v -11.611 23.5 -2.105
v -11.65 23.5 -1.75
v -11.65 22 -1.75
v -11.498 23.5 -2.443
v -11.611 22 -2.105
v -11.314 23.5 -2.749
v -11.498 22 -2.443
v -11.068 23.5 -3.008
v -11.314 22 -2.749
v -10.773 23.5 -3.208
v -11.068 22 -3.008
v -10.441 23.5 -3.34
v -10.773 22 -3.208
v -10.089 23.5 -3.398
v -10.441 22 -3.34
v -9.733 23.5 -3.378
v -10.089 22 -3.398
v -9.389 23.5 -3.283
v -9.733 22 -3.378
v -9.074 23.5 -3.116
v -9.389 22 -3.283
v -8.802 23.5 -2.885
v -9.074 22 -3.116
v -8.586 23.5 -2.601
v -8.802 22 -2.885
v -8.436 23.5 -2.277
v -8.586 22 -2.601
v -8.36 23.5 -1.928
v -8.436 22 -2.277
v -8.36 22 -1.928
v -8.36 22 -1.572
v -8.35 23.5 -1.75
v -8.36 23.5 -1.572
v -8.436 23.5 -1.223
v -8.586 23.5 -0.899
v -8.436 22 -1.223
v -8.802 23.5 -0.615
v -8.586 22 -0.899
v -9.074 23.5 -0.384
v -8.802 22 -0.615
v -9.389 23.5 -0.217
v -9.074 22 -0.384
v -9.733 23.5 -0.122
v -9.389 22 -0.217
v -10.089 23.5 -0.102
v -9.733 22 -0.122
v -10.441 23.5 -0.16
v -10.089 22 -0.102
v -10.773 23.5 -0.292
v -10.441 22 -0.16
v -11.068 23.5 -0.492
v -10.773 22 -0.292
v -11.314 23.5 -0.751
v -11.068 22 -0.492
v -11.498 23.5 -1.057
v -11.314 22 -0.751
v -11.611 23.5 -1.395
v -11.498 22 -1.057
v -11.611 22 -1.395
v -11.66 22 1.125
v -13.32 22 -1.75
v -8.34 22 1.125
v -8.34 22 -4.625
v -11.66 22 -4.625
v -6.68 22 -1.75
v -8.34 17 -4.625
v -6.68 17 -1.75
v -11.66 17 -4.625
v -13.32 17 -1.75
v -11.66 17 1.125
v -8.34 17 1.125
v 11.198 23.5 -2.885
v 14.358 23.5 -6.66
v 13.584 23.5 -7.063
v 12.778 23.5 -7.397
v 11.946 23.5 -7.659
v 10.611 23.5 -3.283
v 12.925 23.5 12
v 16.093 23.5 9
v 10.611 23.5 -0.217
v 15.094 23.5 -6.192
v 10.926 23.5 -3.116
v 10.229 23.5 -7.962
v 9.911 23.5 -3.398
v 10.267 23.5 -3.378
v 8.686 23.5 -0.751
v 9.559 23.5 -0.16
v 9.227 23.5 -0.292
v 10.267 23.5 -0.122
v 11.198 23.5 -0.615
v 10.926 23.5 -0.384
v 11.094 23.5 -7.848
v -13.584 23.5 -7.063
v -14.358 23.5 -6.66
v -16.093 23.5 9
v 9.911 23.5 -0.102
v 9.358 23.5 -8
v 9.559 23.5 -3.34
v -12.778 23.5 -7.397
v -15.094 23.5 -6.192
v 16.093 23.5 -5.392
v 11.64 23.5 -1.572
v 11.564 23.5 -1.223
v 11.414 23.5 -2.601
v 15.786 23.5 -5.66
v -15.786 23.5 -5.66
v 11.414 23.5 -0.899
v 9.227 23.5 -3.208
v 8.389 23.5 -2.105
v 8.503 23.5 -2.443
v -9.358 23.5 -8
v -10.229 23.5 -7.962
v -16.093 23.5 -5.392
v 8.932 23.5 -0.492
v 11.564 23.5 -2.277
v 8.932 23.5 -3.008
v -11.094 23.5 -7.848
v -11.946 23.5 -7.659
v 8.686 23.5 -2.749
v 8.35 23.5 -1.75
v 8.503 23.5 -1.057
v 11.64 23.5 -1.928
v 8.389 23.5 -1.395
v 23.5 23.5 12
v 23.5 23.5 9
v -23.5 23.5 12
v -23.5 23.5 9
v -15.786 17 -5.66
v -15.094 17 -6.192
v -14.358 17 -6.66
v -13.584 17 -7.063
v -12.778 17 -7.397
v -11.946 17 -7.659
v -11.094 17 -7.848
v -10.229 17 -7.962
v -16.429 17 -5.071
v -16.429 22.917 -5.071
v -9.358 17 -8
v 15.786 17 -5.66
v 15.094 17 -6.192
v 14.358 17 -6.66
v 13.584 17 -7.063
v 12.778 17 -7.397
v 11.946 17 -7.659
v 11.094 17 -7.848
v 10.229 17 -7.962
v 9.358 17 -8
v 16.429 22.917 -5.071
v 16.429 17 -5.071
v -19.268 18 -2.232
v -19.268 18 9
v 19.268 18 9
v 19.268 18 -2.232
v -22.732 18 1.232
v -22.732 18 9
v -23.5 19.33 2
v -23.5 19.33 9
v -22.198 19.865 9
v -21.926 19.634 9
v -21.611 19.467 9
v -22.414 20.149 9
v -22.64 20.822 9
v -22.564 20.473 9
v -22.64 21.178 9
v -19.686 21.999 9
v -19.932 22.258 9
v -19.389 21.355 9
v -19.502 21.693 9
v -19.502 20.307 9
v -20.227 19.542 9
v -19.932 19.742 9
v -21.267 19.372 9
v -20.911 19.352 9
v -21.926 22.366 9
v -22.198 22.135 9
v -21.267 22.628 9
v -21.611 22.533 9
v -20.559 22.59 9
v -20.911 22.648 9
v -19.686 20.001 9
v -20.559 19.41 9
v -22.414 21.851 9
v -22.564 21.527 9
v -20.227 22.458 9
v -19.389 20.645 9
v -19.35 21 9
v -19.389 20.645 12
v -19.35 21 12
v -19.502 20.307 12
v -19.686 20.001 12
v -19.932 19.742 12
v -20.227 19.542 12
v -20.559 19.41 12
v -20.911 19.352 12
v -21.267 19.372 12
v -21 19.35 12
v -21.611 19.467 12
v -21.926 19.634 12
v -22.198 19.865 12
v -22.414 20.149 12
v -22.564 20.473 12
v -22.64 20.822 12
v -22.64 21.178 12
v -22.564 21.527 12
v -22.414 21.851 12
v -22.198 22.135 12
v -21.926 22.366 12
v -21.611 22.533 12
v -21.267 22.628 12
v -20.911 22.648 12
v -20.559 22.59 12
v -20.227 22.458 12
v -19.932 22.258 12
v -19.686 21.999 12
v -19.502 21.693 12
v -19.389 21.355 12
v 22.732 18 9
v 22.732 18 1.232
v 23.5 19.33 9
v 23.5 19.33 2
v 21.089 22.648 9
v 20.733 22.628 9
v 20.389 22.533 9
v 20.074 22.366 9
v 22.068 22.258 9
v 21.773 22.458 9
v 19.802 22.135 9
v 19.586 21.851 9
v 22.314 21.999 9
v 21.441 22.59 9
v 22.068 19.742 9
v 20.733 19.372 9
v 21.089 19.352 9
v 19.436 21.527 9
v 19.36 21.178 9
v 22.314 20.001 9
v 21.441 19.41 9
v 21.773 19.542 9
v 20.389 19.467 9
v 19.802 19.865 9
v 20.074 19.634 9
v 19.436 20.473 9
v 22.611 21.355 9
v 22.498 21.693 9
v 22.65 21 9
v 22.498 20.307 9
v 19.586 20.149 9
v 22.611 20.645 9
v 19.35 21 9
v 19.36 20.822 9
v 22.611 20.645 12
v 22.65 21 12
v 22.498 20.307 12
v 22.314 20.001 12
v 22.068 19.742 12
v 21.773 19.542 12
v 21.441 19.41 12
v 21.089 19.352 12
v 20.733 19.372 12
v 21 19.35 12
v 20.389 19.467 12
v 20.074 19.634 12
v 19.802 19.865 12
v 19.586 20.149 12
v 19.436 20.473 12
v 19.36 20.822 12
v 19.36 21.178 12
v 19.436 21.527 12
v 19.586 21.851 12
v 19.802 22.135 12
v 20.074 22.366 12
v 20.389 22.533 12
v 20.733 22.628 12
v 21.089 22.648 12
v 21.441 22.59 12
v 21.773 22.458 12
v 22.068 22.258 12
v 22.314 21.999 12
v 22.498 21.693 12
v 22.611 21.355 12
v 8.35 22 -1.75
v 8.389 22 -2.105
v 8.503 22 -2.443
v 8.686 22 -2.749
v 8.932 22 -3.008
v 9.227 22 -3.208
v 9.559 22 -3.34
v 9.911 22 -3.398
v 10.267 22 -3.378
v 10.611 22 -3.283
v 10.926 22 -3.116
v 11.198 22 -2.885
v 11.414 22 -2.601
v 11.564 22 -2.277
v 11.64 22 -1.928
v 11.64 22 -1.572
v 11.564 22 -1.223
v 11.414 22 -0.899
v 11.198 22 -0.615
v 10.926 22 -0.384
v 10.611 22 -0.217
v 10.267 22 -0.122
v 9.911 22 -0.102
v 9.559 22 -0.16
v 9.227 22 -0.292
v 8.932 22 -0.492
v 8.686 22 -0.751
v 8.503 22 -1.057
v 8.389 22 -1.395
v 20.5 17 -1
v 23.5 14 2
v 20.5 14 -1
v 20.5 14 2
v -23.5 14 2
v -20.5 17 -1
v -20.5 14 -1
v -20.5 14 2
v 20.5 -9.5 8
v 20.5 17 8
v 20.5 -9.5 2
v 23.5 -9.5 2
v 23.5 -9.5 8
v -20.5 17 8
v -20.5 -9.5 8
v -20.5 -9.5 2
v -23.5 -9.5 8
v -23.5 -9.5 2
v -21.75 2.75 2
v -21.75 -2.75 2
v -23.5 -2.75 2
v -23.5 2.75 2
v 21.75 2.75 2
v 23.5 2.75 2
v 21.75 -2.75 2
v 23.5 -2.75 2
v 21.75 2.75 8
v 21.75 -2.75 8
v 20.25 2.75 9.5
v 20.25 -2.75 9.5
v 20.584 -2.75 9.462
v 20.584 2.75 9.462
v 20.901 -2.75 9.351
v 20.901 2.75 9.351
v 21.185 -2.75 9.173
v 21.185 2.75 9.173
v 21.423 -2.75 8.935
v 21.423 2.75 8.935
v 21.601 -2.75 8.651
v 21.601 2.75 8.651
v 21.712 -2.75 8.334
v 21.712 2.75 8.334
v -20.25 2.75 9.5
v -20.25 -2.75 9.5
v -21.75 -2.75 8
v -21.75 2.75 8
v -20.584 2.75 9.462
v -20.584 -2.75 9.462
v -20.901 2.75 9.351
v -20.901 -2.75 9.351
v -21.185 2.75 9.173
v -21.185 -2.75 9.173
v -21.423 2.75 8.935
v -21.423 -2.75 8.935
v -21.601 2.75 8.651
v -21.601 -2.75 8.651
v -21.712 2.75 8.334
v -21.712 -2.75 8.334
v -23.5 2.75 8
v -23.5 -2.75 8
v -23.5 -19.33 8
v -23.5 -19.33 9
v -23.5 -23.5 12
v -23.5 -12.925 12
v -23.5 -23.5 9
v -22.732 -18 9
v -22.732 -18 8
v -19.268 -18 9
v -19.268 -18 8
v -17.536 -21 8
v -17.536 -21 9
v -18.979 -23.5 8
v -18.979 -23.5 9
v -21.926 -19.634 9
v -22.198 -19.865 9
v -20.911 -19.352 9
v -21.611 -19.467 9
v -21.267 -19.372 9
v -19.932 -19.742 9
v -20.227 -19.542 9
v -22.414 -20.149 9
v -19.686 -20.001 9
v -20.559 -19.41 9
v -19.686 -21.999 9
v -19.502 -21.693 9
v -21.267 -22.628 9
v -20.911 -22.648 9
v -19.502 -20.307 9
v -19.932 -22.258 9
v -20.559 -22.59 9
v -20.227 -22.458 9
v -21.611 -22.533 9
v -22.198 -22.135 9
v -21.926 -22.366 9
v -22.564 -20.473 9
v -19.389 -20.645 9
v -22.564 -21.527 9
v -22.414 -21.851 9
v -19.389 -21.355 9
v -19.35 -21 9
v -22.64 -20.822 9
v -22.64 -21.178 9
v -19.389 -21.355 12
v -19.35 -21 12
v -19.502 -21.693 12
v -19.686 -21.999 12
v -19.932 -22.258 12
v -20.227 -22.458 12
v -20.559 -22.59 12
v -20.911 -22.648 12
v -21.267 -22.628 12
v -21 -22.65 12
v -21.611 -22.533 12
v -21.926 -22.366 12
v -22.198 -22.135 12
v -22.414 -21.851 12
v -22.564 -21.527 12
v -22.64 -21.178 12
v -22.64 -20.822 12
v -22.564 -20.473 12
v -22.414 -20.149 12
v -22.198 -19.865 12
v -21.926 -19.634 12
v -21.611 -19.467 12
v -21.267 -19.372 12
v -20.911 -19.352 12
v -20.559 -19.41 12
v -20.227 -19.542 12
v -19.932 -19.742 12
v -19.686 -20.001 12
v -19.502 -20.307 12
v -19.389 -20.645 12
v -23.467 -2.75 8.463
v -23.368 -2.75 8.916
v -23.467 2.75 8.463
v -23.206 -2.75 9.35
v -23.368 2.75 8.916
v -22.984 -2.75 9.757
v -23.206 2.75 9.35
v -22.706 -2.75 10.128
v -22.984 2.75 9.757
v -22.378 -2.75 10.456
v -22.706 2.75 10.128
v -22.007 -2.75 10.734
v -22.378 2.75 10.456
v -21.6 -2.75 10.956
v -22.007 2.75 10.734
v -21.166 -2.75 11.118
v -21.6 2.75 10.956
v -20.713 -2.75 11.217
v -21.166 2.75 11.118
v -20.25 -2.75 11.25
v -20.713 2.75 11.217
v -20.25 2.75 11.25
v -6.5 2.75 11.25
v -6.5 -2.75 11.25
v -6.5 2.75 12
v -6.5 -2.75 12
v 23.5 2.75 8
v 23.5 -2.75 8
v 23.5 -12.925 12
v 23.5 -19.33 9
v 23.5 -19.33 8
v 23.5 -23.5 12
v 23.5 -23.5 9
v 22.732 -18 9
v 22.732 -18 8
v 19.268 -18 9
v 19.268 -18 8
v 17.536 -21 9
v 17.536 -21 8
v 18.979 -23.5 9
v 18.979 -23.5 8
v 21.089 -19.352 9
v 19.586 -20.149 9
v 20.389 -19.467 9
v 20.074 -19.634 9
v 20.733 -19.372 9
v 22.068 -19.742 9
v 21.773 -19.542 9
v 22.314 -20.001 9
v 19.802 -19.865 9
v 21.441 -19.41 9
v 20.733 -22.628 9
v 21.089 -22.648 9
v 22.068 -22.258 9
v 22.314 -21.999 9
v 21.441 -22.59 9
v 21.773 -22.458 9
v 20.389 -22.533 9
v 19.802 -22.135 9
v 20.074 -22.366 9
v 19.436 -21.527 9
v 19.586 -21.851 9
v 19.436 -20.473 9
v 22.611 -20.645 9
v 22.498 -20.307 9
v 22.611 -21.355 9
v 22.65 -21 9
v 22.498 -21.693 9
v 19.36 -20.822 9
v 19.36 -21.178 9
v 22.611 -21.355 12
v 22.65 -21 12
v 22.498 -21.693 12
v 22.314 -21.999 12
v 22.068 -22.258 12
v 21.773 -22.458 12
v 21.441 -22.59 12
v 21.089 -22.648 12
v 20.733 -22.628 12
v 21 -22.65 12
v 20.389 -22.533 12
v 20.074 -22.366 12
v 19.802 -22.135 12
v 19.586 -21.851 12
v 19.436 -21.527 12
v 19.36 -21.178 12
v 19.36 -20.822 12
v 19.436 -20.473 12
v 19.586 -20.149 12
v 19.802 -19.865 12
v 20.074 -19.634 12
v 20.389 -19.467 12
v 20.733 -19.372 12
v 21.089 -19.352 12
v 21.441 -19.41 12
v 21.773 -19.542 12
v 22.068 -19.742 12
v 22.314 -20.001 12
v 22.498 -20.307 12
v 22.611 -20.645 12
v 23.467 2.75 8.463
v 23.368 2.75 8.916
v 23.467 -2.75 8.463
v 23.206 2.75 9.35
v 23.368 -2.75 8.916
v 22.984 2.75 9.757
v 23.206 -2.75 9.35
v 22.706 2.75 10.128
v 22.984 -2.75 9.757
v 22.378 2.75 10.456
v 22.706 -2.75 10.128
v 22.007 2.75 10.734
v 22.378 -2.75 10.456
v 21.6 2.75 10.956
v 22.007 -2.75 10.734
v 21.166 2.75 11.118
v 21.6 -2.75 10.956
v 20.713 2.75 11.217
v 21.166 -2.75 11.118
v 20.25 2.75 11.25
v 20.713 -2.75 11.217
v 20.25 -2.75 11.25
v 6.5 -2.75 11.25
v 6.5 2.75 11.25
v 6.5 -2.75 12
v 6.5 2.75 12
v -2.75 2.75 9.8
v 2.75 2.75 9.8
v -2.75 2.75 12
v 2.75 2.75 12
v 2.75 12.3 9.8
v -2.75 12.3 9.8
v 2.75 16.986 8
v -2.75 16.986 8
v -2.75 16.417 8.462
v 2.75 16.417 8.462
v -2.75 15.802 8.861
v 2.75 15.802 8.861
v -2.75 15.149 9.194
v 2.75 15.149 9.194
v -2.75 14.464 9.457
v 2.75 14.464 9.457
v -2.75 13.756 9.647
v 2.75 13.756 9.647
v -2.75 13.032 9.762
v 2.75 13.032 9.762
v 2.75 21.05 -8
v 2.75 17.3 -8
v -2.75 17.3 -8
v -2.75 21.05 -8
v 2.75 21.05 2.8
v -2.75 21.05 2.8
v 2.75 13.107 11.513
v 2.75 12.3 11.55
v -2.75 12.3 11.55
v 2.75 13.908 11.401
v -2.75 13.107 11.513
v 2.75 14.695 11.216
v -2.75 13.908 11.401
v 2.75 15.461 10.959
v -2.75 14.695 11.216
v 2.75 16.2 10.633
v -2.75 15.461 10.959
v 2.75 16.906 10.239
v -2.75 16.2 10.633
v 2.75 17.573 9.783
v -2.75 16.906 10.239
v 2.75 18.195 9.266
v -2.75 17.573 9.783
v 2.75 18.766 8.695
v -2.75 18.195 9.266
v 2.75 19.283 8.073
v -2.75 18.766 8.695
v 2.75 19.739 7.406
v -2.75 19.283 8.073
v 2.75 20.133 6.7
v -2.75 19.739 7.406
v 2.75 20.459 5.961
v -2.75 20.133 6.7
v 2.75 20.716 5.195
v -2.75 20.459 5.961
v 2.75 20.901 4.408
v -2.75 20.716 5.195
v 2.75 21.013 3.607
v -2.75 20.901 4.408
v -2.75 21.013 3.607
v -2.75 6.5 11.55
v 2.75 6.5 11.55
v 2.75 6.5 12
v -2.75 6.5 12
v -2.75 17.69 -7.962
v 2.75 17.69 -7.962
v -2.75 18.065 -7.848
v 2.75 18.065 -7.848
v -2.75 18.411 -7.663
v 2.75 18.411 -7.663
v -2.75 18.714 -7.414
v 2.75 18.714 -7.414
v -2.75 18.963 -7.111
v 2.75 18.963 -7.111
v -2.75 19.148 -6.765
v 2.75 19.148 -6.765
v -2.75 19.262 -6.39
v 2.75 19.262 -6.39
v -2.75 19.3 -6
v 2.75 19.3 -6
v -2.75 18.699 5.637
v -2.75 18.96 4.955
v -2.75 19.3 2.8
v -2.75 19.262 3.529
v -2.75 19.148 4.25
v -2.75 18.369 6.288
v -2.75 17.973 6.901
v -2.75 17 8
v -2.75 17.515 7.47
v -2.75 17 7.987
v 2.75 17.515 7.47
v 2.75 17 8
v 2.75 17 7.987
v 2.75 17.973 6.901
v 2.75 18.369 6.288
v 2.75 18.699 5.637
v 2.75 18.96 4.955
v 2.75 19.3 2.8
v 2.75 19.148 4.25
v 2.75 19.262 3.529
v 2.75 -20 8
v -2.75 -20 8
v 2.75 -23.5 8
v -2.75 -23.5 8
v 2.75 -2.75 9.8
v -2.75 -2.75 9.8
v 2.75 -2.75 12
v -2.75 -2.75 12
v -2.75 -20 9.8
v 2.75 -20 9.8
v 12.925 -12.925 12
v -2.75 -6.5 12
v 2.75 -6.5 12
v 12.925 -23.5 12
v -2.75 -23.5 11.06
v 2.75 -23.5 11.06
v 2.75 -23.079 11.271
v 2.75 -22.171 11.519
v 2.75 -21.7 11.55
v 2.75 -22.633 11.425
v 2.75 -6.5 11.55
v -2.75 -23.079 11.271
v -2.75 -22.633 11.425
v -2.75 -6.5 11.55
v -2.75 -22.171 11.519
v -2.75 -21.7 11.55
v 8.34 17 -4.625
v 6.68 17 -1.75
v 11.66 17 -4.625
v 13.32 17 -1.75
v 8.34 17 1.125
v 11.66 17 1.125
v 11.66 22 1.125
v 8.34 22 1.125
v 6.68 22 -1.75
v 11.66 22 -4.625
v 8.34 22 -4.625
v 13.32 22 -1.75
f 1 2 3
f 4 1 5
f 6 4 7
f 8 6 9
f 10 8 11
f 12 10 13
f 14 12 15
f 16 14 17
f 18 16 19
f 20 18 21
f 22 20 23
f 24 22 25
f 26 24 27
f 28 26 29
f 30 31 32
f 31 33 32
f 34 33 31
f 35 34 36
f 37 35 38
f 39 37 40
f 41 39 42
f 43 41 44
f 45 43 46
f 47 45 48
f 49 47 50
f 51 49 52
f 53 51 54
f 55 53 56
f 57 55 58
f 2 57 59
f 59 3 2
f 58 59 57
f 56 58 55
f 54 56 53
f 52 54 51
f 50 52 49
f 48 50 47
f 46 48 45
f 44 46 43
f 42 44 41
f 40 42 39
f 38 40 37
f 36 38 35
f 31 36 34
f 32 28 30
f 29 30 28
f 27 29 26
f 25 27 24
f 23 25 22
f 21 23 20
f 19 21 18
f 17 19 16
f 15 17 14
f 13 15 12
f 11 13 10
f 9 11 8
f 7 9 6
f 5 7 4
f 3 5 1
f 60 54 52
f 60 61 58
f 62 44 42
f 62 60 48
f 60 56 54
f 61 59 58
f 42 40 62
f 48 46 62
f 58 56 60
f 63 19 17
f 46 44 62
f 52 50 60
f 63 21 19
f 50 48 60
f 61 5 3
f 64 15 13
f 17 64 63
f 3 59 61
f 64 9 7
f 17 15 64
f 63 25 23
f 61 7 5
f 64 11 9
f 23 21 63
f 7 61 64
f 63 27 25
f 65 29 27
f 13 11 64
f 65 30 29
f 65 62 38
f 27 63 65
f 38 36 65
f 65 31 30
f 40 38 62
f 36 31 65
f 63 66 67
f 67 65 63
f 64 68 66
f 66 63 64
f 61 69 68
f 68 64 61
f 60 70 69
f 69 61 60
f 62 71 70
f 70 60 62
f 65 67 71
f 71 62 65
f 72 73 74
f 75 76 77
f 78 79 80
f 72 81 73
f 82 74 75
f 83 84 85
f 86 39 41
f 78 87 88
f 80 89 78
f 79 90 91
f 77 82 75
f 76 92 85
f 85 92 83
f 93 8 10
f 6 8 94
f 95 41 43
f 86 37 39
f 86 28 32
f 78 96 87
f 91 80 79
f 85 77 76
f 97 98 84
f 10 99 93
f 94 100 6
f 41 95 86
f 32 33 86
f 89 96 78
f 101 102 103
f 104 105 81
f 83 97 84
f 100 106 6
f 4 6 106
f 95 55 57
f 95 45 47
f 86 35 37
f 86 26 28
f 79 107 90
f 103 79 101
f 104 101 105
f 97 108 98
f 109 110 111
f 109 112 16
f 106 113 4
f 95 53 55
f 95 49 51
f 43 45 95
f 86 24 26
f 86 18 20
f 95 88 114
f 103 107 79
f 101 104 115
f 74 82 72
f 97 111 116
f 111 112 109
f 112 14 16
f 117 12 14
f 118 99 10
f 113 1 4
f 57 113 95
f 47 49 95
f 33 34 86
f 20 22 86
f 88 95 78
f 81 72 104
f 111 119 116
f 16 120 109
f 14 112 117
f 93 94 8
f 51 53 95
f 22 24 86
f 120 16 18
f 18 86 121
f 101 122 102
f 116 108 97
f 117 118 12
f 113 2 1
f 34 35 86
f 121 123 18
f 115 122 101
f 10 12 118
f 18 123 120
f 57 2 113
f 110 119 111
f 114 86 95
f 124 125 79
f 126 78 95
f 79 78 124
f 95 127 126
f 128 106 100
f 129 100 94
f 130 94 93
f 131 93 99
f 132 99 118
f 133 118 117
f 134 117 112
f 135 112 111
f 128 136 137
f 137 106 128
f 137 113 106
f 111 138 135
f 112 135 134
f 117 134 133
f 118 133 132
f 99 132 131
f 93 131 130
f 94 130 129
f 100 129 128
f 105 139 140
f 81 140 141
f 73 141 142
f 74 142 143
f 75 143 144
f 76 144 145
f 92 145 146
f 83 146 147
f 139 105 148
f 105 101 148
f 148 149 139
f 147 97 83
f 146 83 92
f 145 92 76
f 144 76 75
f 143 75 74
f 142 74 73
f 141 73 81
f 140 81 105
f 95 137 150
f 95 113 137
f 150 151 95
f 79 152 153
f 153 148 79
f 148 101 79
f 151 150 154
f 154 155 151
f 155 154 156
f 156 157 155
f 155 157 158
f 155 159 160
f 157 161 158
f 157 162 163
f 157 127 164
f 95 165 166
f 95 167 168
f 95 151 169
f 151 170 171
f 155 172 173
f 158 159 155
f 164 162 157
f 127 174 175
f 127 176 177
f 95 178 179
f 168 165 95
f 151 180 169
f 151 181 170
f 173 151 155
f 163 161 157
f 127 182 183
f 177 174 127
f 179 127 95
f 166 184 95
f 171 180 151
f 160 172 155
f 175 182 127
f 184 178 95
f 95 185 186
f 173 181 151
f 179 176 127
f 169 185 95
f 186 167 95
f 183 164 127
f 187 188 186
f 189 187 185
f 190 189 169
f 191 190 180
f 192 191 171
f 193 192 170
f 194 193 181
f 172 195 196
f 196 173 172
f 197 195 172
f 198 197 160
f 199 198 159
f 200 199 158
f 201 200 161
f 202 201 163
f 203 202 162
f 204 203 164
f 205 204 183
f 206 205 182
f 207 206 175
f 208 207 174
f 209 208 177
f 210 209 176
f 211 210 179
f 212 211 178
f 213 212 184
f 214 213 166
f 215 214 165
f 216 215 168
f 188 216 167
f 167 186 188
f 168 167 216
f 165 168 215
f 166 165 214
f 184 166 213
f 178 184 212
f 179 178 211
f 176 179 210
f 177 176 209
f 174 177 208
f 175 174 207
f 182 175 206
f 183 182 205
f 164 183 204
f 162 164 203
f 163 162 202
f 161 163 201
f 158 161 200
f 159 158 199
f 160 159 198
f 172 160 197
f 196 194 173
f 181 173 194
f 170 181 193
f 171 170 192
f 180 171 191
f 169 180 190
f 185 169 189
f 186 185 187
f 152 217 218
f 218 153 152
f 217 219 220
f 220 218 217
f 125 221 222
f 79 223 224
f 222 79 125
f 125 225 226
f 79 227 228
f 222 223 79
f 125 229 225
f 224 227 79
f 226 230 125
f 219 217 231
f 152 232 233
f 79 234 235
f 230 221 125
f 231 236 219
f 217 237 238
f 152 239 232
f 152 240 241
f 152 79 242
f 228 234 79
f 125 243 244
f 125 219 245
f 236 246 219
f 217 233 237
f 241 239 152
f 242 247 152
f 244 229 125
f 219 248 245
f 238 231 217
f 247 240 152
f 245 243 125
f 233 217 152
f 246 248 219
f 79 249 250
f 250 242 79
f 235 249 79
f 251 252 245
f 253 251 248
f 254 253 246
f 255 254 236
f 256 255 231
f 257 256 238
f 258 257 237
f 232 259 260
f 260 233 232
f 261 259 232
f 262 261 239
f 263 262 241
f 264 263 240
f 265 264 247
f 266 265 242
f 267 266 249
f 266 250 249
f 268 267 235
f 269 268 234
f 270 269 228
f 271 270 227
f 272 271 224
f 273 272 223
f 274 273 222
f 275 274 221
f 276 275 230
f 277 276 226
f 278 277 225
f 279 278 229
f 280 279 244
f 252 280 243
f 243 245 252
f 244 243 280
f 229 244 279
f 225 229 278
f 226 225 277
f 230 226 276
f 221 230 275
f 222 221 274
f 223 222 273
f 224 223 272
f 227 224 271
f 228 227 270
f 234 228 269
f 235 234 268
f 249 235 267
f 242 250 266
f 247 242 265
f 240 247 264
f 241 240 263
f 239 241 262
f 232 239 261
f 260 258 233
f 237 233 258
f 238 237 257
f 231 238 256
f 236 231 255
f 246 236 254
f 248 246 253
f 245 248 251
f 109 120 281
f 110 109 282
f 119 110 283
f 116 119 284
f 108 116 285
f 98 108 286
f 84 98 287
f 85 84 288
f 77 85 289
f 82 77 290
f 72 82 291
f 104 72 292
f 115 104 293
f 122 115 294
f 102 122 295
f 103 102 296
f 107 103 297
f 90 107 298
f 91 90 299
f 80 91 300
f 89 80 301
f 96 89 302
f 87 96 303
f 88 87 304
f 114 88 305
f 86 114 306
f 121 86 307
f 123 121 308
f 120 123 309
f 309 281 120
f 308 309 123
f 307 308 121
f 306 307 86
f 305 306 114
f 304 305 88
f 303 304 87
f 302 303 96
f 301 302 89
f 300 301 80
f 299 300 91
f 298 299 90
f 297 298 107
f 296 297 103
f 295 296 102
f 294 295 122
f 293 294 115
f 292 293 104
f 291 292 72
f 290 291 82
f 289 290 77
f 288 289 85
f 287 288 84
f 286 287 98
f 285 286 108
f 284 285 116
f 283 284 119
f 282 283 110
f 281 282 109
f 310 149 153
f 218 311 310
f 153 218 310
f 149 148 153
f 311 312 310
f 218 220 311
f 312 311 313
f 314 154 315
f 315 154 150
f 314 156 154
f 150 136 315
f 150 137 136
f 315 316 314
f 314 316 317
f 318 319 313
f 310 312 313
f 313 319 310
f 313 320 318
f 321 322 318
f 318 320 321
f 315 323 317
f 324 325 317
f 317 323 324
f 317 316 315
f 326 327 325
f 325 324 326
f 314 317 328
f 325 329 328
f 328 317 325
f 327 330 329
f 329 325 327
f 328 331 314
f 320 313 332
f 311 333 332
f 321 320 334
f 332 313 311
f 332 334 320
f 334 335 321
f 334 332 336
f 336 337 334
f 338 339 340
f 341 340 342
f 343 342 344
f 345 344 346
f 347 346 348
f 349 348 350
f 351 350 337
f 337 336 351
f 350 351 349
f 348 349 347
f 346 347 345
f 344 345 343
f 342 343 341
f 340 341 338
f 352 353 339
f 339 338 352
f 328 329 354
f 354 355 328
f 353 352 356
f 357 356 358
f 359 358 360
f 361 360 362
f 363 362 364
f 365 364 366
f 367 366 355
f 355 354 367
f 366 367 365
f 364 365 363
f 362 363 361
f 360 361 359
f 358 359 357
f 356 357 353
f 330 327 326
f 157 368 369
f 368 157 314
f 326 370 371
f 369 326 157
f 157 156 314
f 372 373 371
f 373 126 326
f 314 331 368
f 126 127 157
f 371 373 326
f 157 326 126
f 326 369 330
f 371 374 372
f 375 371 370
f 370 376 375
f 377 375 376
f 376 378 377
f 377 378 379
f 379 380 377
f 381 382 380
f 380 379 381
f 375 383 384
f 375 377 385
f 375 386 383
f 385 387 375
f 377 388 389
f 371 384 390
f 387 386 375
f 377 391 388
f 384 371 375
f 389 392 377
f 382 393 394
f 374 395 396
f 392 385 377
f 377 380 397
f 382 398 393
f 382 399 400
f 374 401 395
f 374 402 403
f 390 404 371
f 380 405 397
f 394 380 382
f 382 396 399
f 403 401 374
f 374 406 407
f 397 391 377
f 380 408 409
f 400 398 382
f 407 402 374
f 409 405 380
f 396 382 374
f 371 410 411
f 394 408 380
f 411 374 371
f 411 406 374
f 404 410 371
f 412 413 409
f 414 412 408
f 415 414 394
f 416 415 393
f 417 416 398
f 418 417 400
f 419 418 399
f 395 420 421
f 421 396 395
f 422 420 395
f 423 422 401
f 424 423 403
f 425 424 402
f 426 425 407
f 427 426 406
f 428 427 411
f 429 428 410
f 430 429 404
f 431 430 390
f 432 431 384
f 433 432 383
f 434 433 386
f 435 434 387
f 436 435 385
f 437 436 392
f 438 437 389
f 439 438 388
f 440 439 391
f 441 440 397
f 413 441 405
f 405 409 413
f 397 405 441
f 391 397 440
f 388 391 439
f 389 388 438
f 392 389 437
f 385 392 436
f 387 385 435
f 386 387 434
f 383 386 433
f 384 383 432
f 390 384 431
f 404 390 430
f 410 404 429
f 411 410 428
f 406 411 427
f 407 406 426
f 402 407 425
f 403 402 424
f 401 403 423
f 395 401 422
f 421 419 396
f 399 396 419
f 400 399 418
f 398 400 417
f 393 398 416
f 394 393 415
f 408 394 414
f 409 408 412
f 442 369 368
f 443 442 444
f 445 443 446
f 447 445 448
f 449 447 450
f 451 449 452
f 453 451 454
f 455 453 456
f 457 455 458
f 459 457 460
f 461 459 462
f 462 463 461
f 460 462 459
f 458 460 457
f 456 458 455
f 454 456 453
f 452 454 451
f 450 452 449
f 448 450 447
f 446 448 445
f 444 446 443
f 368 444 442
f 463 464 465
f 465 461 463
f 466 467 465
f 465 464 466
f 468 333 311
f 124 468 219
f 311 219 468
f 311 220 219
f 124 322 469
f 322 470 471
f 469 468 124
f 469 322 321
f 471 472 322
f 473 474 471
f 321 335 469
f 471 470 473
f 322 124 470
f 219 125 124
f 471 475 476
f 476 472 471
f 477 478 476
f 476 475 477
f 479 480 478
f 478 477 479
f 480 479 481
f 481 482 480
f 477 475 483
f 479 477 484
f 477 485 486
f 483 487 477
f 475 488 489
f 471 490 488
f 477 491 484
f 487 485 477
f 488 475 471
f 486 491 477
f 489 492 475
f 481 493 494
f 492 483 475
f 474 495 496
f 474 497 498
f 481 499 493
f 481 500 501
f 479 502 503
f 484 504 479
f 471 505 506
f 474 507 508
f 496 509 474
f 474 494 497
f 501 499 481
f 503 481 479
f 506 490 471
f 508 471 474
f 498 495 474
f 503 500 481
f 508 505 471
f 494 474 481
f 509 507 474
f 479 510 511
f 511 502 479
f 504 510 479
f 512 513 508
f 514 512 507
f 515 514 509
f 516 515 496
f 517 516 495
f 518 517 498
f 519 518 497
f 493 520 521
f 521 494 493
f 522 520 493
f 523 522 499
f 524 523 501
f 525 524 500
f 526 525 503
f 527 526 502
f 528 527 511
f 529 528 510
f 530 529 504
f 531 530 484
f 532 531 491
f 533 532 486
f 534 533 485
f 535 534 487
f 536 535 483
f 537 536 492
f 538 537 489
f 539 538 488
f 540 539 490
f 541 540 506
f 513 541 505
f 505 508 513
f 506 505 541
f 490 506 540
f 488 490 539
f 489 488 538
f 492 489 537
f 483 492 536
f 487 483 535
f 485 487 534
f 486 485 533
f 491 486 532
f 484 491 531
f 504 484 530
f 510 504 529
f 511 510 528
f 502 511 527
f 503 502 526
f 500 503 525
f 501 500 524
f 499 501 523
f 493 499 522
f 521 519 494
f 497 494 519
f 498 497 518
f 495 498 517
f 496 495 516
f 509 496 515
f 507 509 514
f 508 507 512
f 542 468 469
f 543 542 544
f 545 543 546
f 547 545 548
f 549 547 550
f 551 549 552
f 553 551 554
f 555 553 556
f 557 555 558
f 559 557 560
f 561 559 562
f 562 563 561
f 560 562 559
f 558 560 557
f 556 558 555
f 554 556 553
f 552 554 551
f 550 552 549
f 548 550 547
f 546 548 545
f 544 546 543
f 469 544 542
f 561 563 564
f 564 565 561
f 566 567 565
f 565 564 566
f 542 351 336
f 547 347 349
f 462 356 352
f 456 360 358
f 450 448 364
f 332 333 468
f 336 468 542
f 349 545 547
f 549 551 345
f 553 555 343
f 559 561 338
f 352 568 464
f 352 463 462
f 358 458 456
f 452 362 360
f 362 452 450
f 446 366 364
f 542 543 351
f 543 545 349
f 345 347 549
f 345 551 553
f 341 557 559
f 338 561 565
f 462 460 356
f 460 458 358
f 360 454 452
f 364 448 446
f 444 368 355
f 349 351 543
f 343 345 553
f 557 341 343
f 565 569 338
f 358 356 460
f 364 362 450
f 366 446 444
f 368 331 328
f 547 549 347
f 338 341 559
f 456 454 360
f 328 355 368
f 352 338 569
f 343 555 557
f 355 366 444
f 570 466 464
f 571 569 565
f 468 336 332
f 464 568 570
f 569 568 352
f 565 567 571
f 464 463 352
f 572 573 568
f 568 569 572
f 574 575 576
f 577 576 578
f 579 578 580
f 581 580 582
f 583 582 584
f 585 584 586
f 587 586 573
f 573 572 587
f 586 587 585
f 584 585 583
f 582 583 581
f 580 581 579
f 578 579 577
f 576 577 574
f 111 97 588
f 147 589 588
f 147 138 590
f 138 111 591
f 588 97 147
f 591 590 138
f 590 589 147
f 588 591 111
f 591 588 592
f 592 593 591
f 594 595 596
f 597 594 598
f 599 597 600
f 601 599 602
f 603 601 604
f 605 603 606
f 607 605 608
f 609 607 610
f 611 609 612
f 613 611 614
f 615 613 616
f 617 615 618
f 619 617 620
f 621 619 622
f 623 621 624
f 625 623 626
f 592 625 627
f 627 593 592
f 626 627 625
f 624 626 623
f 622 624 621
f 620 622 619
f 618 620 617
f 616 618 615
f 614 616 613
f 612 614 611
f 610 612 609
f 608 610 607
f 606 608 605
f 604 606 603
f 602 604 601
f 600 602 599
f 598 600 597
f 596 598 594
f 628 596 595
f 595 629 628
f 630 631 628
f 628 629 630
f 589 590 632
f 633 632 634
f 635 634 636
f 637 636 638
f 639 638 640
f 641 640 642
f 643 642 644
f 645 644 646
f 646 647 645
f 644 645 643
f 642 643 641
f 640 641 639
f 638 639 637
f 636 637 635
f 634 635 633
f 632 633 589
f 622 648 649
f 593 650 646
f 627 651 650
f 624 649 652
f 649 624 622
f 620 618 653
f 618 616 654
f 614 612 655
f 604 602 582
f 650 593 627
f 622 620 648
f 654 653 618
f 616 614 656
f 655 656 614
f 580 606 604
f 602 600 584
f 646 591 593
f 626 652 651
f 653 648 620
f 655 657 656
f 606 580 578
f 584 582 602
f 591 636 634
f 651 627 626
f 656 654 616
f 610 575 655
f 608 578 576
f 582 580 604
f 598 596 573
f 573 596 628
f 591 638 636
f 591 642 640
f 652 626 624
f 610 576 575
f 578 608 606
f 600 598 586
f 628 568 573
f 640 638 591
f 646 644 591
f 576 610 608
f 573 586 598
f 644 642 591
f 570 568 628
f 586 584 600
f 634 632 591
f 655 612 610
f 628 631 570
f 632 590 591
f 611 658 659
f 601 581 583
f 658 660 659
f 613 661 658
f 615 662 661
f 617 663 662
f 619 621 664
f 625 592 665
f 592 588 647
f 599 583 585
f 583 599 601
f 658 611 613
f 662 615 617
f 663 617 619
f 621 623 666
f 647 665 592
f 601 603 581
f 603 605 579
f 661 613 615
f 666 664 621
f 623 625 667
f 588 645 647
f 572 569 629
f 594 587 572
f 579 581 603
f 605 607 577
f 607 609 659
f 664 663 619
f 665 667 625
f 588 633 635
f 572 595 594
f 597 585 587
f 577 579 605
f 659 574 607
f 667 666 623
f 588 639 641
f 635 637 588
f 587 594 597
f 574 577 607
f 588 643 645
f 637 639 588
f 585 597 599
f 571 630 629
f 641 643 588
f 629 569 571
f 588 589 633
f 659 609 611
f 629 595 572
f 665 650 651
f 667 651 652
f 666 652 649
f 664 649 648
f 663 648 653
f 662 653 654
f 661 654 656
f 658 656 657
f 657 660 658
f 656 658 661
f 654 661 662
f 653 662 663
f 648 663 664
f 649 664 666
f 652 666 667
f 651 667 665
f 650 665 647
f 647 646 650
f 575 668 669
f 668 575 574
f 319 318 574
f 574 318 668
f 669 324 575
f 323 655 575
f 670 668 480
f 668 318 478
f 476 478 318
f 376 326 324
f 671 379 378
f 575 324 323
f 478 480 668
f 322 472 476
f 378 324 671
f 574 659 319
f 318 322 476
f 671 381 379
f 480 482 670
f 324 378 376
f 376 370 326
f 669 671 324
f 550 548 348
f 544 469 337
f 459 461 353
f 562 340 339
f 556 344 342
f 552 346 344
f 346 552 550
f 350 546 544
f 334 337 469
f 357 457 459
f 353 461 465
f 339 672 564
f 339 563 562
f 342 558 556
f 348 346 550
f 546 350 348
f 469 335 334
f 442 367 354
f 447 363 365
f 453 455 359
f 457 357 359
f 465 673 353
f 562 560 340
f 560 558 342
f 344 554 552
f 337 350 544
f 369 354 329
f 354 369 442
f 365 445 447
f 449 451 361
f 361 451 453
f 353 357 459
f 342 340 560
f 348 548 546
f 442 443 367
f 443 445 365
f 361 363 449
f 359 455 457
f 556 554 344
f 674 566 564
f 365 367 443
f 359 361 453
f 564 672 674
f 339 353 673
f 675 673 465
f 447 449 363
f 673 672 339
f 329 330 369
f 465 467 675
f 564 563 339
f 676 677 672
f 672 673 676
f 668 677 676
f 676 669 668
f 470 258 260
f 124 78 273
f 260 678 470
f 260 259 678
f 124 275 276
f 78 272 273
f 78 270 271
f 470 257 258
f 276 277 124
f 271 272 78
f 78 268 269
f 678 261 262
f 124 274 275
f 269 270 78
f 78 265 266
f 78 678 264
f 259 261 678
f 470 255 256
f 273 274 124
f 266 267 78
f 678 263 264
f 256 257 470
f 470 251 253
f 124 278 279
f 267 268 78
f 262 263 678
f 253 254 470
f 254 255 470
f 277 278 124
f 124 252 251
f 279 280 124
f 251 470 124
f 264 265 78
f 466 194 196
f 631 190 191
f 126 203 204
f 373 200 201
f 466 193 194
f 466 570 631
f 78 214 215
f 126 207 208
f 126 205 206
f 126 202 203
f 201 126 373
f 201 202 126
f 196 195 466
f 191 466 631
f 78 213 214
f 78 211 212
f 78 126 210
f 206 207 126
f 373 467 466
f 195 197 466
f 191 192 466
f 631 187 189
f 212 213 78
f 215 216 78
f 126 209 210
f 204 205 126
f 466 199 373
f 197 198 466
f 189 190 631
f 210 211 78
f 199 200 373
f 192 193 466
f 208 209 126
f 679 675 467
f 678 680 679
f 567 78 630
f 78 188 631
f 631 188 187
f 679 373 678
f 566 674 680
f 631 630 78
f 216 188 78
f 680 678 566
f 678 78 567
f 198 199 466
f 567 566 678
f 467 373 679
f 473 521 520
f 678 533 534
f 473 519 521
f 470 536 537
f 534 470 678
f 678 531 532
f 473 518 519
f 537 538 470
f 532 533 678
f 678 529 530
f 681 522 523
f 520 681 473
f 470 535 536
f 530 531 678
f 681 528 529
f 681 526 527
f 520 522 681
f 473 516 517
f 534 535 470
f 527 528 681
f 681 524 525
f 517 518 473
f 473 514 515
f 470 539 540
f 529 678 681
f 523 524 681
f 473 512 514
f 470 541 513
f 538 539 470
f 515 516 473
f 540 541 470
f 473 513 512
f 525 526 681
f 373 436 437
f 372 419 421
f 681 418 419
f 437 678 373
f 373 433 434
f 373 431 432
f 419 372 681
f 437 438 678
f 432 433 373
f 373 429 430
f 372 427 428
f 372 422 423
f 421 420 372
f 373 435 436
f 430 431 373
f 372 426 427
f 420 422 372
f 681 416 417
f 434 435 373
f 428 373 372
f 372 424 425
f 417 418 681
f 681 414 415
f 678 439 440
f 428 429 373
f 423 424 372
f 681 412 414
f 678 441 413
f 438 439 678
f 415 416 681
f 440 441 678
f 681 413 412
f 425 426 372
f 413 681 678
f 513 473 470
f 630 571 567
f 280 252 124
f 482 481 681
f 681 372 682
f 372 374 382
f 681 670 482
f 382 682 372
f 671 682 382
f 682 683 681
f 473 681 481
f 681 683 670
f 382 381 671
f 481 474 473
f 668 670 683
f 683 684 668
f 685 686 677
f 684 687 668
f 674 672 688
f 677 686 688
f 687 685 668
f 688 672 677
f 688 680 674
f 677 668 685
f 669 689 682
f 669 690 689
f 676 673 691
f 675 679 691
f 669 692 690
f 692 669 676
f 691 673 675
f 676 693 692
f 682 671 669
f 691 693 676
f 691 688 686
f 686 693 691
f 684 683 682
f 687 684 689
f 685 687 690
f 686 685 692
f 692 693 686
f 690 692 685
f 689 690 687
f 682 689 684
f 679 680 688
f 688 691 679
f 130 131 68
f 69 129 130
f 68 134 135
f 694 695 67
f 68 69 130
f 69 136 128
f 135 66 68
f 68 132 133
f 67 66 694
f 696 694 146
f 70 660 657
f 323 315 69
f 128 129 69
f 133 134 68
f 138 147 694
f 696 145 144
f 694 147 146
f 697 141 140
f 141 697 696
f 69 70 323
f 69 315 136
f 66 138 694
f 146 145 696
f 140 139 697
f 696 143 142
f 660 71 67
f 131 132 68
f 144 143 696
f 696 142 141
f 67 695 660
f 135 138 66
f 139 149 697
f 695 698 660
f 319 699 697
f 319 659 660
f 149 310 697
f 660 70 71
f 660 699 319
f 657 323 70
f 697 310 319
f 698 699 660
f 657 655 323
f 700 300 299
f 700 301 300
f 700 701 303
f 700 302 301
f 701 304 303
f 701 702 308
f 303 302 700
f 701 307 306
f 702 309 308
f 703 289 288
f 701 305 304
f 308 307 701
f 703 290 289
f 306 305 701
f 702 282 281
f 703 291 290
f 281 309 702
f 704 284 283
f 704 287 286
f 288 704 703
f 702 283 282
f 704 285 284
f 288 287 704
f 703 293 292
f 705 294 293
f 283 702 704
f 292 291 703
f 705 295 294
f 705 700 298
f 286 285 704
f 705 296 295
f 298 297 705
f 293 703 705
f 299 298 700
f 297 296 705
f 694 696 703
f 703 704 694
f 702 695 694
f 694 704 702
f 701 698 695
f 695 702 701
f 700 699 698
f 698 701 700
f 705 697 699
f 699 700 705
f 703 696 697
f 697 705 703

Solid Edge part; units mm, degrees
sketch "Sketch1" plane through (0, 0, 0) normal (0, 0, 1) x (1, 0, 0)
  line L0 (23.5, -23.5) -> (20.5, -23.5)
  line L1 (20.5, 17) -> (20.5, -23.5)
  line L2 (-20.5, 17) -> (20.5, 17)
  line L3 (-20.5, -23.5) -> (-20.5, 17)
  line L4 (-20.5, -23.5) -> (-23.5, -23.5)
  line L5 (-23.5, -23.5) -> (-23.5, 23.5)
  line L6 (-23.5, 23.5) -> (23.5, 23.5)
  line L7 (23.5, 23.5) -> (23.5, -23.5)
  dimension "D1" = 41
  dimension "D2" = 40.5
  dimension "D3" = 47
  dimension "D4" = 47
  dimension "D5" = 3
  dimension "D6" = 3
extrude "ProtrusiónExtruida_1" add sketch "Sketch1" along normal mid plane 16
sketch "Sketch2" plane through (0, 0, 8) normal (0, 0, 1) x (1, 0, 0)
  line L0 (23.5, -23.5) -> (-23.5, -23.5)
  line L1 (-23.5, -23.5) -> (-23.5, 23.5)
  line L2 (-23.5, 23.5) -> (23.5, 23.5)
  line L3 (23.5, 23.5) -> (23.5, -23.5)
extrude "Protrusion1" add sketch "Sketch2" along normal blind 4
sketch "Sketch3" plane through (-23.5, 0, -2.5) normal (-1, 0, 0) x (0, 1, 0)
  line L0 (14, -4.5) -> (9, -4.5)
  line L1 (14, 0.5) -> (14, -4.5)
  dimension "D1" = 5
  dimension "D2" = 3
extrude "Cutout1" cut sketch "Sketch3" against normal through all material side at (-23.5, 11.5, 1.95)
sketch "Sketch4" plane through (0, 17, 0) normal (0, -1, 0) x (-1, 0, 0)
  line L0 (8.3401, 4.625) -> (11.6599, 4.625)
  line L1 (11.6599, 4.625) -> (13.3198, 1.75)
  line L2 (13.3198, 1.75) -> (11.6599, -1.125)
  line L3 (11.6599, -1.125) -> (8.3401, -1.125)
  line L4 (8.3401, -1.125) -> (6.6802, 1.75)
  line L5 (6.6802, 1.75) -> (8.3401, 4.625)
  dimension "D1" = 5.75
  dimension "D2" = 5.75
  dimension "D3" = 5.75
  dimension "D4" = 10.5
  dimension "D5" = 9.75
extrude "VaciadoExtruido_18" cut sketch "Sketch4" against normal blind 5
sketch "Sketch5" plane through (0, 23.5, -2.5) normal (0, 1, 0) x (1, 0, 0)
  circle A0 centre (-10, -0.75) radius 1.65
  dimension "D1" = 10.5
  dimension "D2" = 9.75
extrude "Cutout2" cut sketch "Sketch5" against normal up to next
chamfer "Chaflán_1" distance 10 angle 45 2 edges at (-23.5, 18.75, -8) (23.5, 18.75, -8)
fillet "Redondeo_5" radius 10 2 edges at (-13.5, 20.25, -8) (13.5, 20.25, -8)
sketch "Sketch6" plane through (0, -4.5, 8) normal (0, 0, -1) x (-1, 0, 0)
  line L0 (-22.7321, -13.5) -> (-19.2679, -13.5)
  line L1 (-19.2679, -13.5) -> (-17.5359, -16.5)
  line L2 (-17.5359, -16.5) -> (-19.2679, -19.5)
  line L3 (-19.2679, -19.5) -> (-22.7321, -19.5)
  line L4 (-24.8409, -19.8273) -> (-22.7321, -19.5)
  line L5 (-24.4641, -16.5) -> (-24.8409, -19.8273)
  line L6 (-24.4641, -16.5) -> (-22.7321, -13.5)
  line L7 (19.2679, -13.5) -> (22.7321, -13.5)
  line L8 (22.7321, -13.5) -> (24.4641, -16.5)
  line L9 (25.4467, -19.5) -> (24.4641, -16.5)
  line L10 (22.7321, -19.5) -> (25.4467, -19.5)
  line L11 (22.7321, -19.5) -> (19.2679, -19.5)
  line L12 (19.2679, -19.5) -> (17.5359, -16.5)
  line L13 (17.5359, -16.5) -> (19.2679, -13.5)
  line L14 (19.2679, 28.5) -> (22.7321, 28.5)
  line L15 (22.7321, 28.5) -> (25.2223, 28.8412)
  line L16 (25.2223, 28.8412) -> (24.4641, 25.5)
  line L17 (24.4641, 25.5) -> (22.7321, 22.5)
  line L18 (22.7321, 22.5) -> (19.2679, 22.5)
  line L19 (19.2679, 22.5) -> (17.5359, 25.5)
  line L20 (17.5359, 25.5) -> (15.8038, 28.5)
  line L21 (15.8038, 28.5) -> (19.2679, 28.5)
  line L22 (-22.7321, 28.5) -> (-19.2679, 28.5)
  line L23 (-19.2679, 28.5) -> (-15.8038, 28.5)
  line L24 (-15.8038, 28.5) -> (-17.5359, 25.5)
  line L25 (-17.5359, 25.5) -> (-19.2679, 22.5)
  line L26 (-19.2679, 22.5) -> (-22.7321, 22.5)
  line L27 (-22.7321, 22.5) -> (-24.4641, 25.5)
  line L28 (-25.1936, 28.5) -> (-24.4641, 25.5)
  line L29 (-22.7321, 28.5) -> (-25.1936, 28.5)
  dimension "D1" = 6
  dimension "D2" = 6
  dimension "D3" = 21
  dimension "D4" = 21
  dimension "D5" = 6
  dimension "D6" = 6
  dimension "D7" = 6
  dimension "D8" = 6
  dimension "D9" = 6
  dimension "D10" = 6
  dimension "D11" = 21
  dimension "D12" = 21
  dimension "D13" = 21
  dimension "D14" = 21
  dimension "D15" = 21
  dimension "D16" = 21
extrude "VaciadoExtruido_32" cut sketch "Sketch6" against normal blind 1 and the other way up to next
sketch "Sketch7" plane through (9, -9, 12) normal (0, 0, 1) x (0, -1, 0)
  circle A0 centre (-30, -30) radius 1.65
  circle A1 centre (12, -30) radius 1.65
  circle A2 centre (12, 12) radius 1.65
  circle A3 centre (-30, 12) radius 1.65
  dimension "D1" = 21
  dimension "D2" = 21
  dimension "D3" = 21
  dimension "D4" = 21
extrude "Cutout3" cut sketch "Sketch7" against normal up to next
sketch "Sketch8" plane through (0, -4.5, 8) normal (0, 0, -1) x (-1, 0, 0)
  line L0 (-2.75, -19) -> (2.75, -19)
  line L1 (2.75, -19) -> (2.75, -20.75)
  line L2 (2.75, -20.75) -> (-2.75, -20.75)
  line L3 (-2.75, -20.75) -> (-2.75, -19)
  dimension "D1" = 5.5
  dimension "D2" = 1.75
  dimension "D3" = 1.8
revolve "VaciadoPorRevolución_1" cut sketch "Sketch8" angle 90 about axis through (4.4935, -21.7, 8) along (-1, 0, 0)
sketch "Sketch9" plane through (0, -21.7, 11.25) normal (0, -1, 0) x (-1, 0, 0)
  line L0 (-2.75, 1.45) -> (2.75, 1.45)
  line L1 (2.75, 1.45) -> (2.75, -0.3)
  line L2 (2.75, -0.3) -> (-2.75, -0.3)
  line L3 (-2.75, -0.3) -> (-2.75, 1.45)
extrude "VaciadoExtruido_34" cut sketch "Sketch9" against normal blind 34
sketch "Sketch10" plane through (0, 12.3, 11.25) normal (0, -1, 0) x (-1, 0, 0)
  line L0 (-2.75, -0.3) -> (-2.75, 1.45)
  line L1 (-2.75, 1.45) -> (2.75, 1.45)
  line L2 (2.75, 1.45) -> (2.75, -0.3)
  line L3 (2.75, -0.3) -> (-2.75, -0.3)
revolve "RevolvedCutout1" cut sketch "Sketch10" angle 90 about axis through (2.8162, 12.3, 2.8) along (-1, 0, 0)
sketch "Sketch11" plane through (0, 18.25, 2.8) normal (0, 0, 1) x (1, 0, 0)
  line L0 (2.75, 1.05) -> (-2.75, 1.05)
  line L1 (-2.75, 1.05) -> (-2.75, 2.8)
  line L2 (-2.75, 2.8) -> (2.75, 2.8)
  line L3 (2.75, 2.8) -> (2.75, 1.05)
extrude "Cutout4" cut sketch "Sketch11" against normal up to next
fillet "Redondeo_6" radius 2 1 edges at (0, 19.3, -8)
sketch "Sketch12" plane through (22, -2, -8) normal (0, 0, -1) x (0, -1, 0)
  line L0 (-4.75, 0.25) -> (0.75, 0.25)
  line L1 (0.75, 0.25) -> (0.75, -1.5)
  line L2 (0.75, -1.5) -> (-4.75, -1.5)
  line L3 (-4.75, -1.5) -> (-4.75, 0.25)
  dimension "D1" = 5.5
  dimension "D2" = 1.75
extrude "Cutout5" cut sketch "Sketch12" against normal up to surface (16 mm away)
sketch "Sketch13" plane through (22.75, 0, 8) normal (0, 0, -1) x (-1, 0, 0)
  line L0 (1, 2.75) -> (-0.75, 2.75)
  line L1 (-0.75, 2.75) -> (-0.75, -2.75)
  line L2 (-0.75, -2.75) -> (1, -2.75)
  line L3 (1, -2.75) -> (1, 2.75)
  dimension "D1" = 1.5
revolve "VaciadoPorRevolución_3" cut sketch "Sketch13" angle 90 about axis through (20.25, 2.6731, 8) along (0, -1, 0)
sketch "Sketch14" plane through (20.25, 0, 11.25) normal (1, 0, 0) x (0, -1, 0)
  line L0 (-2.75, 1.75) -> (-2.75, 0)
  line L1 (-2.75, 0) -> (2.75, 0)
  line L2 (2.75, 0) -> (2.75, 1.75)
  line L3 (2.75, 1.75) -> (-2.75, 1.75)
extrude "VaciadoExtruido_37" cut sketch "Sketch14" against normal blind 33
mirror "Mirror1" about plane through (0, 0, 0) normal (1, 0, 0) of "Cutout2", "VaciadoExtruido_18", "Cutout5", "VaciadoPorRevolución_3", "VaciadoExtruido_37"
sketch "Sketch15" plane through (0, -4.5, 8) normal (0, 0, -1) x (0, -1, 0)
  line L0 (5, 27.5098) -> (5, -27.4354)
  dimension "D1" = 26.5
extrude "Cutout10" cut sketch "Sketch15" along normal through all material side at (-0.0372, -9.55, 8)
sketch "Sketch16" plane through (0, -4, 11.25) normal (0, 0, -1) x (-1, 0, 0)
  line L0 (-2.75, 1.25) -> (-2.75, -2.5)
  line L1 (-2.75, -2.5) -> (2.75, -2.5)
  line L2 (2.75, 1.25) -> (2.75, -2.5)
  line L3 (6.5, 1.25) -> (2.75, 1.25)
  line L4 (6.5, 1.25) -> (6.5, 6.75)
  line L5 (6.5, 6.75) -> (2.75, 6.75)
  line L6 (2.75, 10.5) -> (2.75, 6.75)
  line L7 (2.75, 10.5) -> (-2.75, 10.5)
  line L8 (-2.75, 10.5) -> (-2.75, 6.75)
  line L9 (-2.75, 6.75) -> (-6.5, 6.75)
  line L10 (-6.5, 6.75) -> (-6.5, 1.25)
  line L11 (-2.75, 1.25) -> (-6.5, 1.25)
  dimension "D1" = 13
  dimension "D2" = 6.5
  dimension "D3" = 6.5
  dimension "D4" = 13
extrude "Cutout11" cut sketch "Sketch16" against normal up to next
sketch "Sketch17" plane through (0, -3.25, 8) normal (0, 0, -1) x (1, 0, 0)
  line L0 (-2.75, 16.75) -> (2.75, 16.75)
  line L1 (2.75, 16.75) -> (2.75, 20.25)
  line L2 (2.75, 20.25) -> (-2.75, 20.25)
  line L3 (-2.75, 16.75) -> (-2.75, 20.25)
  dimension "D1" = 37
extrude "Cutout12" cut sketch "Sketch17" against normal up to next
properties material "Abs 15"
